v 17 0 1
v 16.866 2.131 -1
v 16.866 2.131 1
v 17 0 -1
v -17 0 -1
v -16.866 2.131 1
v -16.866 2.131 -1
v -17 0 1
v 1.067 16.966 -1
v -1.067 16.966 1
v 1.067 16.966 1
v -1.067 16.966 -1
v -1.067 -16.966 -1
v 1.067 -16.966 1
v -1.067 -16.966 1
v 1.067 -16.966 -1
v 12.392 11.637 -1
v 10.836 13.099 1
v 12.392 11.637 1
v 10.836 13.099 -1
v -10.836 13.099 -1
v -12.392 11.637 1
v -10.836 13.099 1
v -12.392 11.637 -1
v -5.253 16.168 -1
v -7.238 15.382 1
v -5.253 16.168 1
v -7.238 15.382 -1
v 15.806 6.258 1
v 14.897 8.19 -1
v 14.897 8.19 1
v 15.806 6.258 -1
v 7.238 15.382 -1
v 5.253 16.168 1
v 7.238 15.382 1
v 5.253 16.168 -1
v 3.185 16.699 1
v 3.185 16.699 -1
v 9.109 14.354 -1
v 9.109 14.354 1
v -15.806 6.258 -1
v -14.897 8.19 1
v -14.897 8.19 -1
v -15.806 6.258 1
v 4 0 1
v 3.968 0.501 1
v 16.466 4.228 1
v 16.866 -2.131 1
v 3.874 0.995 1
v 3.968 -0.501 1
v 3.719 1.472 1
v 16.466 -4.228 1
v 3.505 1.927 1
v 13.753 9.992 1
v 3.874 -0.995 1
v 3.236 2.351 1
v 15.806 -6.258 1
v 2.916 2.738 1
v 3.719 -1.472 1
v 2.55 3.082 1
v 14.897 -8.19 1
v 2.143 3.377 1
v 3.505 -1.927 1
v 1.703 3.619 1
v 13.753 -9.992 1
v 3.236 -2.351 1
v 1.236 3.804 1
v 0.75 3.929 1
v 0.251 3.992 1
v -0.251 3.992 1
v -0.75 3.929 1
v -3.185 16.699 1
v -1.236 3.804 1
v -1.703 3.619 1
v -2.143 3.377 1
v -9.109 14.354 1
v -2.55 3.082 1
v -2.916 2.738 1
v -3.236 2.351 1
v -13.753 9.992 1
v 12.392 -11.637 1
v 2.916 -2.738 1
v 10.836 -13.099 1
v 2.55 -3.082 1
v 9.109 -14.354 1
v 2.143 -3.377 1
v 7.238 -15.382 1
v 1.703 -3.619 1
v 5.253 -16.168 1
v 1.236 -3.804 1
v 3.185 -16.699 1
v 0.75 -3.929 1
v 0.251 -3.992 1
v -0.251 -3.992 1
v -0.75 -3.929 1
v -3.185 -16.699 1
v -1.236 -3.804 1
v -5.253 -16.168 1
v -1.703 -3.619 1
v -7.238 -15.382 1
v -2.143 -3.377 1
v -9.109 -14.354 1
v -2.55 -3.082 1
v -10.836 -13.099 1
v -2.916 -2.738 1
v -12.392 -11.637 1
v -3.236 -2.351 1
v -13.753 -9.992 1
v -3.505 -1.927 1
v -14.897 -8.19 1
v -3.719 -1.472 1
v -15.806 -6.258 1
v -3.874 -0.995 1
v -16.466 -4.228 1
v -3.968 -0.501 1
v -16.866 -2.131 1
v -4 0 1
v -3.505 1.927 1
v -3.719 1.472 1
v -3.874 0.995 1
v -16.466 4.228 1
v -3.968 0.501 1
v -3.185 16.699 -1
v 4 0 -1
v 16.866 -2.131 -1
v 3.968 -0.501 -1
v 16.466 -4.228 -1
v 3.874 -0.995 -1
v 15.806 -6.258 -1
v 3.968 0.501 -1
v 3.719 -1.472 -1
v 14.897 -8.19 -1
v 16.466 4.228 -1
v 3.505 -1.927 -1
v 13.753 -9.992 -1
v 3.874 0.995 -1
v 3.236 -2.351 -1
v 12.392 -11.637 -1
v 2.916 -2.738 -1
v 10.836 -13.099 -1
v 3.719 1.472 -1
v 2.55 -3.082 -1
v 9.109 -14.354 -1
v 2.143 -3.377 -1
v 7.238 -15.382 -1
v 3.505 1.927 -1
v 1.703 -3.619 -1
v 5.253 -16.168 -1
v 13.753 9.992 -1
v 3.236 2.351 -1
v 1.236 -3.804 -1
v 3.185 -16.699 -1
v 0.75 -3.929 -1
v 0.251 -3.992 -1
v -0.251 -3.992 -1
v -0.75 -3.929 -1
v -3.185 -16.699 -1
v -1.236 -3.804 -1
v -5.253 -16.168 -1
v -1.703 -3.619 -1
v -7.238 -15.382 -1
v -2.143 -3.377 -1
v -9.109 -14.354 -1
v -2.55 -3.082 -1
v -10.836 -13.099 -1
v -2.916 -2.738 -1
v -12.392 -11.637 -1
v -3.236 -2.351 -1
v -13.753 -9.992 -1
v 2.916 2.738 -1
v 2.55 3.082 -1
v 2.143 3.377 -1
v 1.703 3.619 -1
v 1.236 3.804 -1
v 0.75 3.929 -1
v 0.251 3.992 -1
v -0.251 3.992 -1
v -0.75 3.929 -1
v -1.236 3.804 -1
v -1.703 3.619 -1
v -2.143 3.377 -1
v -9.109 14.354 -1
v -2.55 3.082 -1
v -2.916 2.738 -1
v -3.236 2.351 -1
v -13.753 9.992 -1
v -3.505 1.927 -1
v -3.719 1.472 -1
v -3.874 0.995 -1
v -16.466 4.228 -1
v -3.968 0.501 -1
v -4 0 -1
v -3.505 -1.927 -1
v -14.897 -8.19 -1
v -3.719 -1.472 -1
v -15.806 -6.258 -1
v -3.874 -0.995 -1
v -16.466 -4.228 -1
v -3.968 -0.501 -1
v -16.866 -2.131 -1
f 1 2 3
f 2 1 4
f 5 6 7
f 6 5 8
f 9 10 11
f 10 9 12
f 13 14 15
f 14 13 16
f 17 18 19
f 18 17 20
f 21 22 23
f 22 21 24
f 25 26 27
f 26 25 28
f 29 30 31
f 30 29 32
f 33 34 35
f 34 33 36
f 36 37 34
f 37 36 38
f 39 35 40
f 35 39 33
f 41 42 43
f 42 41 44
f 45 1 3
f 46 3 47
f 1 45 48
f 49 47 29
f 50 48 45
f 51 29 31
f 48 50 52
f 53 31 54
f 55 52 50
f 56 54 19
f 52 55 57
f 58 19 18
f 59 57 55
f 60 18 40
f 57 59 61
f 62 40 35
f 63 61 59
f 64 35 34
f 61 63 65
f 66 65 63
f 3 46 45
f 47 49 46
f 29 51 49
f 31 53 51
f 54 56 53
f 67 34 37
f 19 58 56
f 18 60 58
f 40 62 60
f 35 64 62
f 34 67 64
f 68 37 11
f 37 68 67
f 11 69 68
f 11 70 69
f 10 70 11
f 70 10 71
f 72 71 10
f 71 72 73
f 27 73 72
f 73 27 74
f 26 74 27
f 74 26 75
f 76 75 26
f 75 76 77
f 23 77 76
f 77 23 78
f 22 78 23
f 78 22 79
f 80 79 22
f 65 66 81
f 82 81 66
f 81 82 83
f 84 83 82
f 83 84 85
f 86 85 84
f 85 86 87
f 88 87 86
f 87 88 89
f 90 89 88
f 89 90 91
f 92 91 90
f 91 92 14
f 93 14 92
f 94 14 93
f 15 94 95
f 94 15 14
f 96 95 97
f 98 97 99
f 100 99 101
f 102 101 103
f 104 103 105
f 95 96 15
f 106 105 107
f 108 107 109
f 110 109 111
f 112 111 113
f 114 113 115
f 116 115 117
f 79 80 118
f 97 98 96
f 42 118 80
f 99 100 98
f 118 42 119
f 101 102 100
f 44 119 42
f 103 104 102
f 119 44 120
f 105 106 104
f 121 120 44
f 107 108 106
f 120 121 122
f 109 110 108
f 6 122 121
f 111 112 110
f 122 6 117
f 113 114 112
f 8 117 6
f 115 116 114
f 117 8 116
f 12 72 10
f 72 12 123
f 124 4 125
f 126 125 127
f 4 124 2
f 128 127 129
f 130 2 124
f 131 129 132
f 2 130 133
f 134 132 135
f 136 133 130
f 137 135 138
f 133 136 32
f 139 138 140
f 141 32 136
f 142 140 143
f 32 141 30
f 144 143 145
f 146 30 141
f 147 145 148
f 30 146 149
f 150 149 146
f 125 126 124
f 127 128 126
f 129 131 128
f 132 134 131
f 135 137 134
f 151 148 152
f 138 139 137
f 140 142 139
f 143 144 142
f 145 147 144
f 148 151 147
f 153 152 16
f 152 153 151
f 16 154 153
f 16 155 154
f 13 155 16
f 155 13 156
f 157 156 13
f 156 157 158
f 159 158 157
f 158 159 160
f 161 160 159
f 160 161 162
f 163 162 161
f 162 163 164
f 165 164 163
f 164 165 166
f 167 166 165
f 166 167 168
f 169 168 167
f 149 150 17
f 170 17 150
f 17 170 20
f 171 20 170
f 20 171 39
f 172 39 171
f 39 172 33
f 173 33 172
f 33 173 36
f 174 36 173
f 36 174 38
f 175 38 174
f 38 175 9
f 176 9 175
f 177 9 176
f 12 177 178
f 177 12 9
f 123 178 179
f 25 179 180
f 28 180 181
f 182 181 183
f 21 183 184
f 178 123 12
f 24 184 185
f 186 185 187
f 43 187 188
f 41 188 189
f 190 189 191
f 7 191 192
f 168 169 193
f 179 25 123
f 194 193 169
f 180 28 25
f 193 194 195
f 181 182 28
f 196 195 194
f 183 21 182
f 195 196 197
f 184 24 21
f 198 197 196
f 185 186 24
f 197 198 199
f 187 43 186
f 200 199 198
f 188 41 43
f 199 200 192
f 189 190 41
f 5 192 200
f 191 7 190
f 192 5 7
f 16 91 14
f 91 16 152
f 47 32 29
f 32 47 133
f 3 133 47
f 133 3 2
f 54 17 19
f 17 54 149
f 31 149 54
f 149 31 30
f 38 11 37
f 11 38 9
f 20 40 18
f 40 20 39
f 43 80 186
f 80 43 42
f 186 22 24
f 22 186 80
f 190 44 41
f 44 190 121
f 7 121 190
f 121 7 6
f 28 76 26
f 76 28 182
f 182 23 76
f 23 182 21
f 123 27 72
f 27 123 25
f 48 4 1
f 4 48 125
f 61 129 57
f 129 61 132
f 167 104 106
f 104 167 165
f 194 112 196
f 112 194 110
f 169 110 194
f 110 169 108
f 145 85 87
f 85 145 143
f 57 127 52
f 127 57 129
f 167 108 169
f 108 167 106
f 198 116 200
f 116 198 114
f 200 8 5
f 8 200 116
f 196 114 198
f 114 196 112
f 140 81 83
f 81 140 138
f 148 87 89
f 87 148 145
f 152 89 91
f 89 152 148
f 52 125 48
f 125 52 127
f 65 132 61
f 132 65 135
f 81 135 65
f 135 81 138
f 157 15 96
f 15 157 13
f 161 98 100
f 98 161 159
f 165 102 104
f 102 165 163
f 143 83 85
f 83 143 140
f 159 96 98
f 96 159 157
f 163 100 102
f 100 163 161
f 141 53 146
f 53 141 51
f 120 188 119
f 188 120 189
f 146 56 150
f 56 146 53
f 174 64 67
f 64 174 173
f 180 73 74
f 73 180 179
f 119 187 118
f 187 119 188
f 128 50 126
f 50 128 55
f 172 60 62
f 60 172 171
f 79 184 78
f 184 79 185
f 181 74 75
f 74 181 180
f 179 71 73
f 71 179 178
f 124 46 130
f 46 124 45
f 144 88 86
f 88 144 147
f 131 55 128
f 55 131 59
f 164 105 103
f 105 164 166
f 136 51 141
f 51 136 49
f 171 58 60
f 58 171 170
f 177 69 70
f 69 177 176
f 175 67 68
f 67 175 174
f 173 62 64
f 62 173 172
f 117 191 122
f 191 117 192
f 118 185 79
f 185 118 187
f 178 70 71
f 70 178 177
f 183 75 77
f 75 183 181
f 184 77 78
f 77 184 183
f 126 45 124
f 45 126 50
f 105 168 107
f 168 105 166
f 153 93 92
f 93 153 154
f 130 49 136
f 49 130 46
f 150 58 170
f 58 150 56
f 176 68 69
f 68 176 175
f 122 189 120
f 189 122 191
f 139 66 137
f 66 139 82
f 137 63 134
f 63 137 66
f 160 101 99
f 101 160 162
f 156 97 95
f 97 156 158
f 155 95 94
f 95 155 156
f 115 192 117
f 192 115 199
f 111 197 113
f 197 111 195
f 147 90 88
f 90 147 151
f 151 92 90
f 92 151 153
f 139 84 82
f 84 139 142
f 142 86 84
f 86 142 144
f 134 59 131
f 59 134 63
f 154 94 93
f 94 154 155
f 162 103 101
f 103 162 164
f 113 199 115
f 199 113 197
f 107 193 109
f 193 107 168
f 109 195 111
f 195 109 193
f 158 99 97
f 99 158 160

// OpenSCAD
$fn = 50;


difference() {
	union() {
		translate(v = [0, 0, -1.0000000000]) {
			cylinder(h = 2, r = 17.0000000000);
		}
	}
	union() {
		translate(v = [0, 0, -100.0000000000]) {
			cylinder(h = 200, r = 4);
		}
	}
}
